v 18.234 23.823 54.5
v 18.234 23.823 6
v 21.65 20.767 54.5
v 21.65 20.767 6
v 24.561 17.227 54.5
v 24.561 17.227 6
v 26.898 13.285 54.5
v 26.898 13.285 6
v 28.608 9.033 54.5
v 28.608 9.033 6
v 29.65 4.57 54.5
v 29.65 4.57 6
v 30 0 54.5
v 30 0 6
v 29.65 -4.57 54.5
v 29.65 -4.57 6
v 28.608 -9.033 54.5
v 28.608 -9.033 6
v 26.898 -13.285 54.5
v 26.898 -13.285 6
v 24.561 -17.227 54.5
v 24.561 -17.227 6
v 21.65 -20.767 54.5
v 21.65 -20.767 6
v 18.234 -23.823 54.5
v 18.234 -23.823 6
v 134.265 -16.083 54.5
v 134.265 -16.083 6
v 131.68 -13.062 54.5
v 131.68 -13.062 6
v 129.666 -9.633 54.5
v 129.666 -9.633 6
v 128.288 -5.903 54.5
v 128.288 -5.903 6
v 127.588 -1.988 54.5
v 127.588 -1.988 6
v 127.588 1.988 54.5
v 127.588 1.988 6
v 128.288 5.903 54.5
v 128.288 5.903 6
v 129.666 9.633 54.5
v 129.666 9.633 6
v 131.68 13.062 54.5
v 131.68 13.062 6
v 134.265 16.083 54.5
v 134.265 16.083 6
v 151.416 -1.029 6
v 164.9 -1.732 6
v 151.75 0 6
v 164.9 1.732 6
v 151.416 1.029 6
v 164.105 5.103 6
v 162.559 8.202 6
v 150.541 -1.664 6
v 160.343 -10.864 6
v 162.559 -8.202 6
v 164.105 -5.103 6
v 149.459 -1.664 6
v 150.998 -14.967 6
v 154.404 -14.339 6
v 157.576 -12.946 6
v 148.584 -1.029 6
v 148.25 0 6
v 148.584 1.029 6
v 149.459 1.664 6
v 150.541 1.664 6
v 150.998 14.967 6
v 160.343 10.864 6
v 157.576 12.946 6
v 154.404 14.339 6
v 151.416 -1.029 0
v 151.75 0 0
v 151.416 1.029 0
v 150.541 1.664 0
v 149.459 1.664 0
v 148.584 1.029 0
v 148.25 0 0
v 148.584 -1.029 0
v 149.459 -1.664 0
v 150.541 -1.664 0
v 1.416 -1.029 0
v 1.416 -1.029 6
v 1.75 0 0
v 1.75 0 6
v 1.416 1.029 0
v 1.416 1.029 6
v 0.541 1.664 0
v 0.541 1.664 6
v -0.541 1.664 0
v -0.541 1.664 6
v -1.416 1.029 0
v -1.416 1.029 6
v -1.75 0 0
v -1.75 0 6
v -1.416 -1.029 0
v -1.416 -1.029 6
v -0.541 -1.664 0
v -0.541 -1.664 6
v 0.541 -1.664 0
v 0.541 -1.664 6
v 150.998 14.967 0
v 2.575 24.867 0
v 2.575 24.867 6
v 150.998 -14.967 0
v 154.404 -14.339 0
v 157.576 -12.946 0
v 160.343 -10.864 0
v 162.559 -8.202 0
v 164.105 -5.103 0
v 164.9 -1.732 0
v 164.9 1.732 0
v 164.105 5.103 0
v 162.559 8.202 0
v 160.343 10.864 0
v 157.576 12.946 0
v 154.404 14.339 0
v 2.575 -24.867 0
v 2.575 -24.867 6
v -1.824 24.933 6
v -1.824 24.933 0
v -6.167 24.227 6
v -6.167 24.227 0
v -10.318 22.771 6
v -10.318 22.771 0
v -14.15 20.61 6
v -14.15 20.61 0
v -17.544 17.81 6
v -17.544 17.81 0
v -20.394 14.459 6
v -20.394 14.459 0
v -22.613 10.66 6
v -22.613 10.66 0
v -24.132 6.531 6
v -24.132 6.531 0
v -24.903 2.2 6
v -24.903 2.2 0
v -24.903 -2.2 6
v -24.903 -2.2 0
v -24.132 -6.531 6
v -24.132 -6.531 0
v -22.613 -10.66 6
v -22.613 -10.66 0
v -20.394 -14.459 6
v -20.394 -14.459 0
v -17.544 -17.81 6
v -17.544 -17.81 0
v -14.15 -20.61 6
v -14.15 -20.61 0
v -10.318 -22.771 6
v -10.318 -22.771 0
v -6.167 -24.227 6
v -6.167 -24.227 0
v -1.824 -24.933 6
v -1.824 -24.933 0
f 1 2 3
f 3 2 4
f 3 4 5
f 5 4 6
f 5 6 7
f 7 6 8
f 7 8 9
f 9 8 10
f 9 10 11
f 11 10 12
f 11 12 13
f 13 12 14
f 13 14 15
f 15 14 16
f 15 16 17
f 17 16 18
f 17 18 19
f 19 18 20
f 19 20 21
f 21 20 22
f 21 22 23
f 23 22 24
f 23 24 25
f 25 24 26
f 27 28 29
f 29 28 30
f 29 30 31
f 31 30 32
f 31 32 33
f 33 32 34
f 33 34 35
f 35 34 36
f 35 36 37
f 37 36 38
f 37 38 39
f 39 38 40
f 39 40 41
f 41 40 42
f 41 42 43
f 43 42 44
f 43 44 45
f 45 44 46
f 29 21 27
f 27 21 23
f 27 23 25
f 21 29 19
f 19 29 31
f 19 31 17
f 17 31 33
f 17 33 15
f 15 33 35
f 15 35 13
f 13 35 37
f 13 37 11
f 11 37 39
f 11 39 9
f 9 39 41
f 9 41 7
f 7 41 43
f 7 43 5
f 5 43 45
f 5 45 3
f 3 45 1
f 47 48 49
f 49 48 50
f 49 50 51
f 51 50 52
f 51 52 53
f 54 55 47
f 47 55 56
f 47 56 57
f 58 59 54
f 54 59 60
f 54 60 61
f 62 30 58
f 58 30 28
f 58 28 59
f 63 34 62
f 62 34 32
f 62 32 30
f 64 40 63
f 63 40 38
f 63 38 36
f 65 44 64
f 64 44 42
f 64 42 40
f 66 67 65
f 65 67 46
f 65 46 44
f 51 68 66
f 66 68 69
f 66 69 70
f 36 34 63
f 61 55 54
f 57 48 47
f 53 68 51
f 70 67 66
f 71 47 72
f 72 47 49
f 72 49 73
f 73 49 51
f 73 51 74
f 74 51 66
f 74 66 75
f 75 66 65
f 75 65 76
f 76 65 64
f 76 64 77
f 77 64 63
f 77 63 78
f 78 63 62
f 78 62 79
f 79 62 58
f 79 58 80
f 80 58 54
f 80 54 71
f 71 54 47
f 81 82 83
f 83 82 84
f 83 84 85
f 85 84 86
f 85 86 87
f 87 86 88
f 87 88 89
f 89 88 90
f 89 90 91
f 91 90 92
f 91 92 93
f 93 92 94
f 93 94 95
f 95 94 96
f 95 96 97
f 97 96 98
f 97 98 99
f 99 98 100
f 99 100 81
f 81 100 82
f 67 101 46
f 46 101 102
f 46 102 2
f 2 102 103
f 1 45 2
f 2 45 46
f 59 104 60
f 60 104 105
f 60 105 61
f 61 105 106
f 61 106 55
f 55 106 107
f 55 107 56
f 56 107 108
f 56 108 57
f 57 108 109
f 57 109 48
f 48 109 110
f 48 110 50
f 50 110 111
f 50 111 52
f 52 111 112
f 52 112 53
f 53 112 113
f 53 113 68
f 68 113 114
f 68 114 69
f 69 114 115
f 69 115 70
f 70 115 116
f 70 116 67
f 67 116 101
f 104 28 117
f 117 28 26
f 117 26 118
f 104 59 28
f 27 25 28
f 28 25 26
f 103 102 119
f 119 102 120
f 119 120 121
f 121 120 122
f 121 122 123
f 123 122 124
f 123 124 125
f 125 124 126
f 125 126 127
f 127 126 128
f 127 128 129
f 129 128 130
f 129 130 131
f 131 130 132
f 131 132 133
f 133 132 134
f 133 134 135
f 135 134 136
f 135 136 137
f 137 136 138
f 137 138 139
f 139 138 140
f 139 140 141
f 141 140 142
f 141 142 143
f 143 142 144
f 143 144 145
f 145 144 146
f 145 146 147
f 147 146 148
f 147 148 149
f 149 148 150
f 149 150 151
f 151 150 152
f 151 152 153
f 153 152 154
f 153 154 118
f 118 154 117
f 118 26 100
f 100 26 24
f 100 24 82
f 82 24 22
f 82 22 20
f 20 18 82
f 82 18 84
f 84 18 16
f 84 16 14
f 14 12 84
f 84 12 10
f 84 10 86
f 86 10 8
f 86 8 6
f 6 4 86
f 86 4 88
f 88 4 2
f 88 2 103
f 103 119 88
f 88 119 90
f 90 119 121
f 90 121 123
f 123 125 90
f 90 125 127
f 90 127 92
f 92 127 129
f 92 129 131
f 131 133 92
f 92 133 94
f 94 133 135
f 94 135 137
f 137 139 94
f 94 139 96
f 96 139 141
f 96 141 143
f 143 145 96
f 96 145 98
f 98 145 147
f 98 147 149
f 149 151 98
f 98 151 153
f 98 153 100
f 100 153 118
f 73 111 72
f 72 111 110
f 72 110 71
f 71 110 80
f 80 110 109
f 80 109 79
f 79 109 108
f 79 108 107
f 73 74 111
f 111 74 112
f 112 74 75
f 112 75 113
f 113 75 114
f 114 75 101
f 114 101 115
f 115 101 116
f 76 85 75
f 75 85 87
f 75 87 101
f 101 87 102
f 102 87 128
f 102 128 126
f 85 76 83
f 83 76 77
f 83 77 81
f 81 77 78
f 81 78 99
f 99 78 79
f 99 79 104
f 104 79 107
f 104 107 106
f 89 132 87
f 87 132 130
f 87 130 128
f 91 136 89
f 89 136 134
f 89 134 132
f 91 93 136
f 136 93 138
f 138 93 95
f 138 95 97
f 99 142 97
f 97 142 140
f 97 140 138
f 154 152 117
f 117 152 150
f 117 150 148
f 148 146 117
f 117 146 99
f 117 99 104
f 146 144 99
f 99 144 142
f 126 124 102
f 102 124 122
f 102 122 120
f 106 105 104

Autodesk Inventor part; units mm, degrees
ref_plane "YZ Plane" through (0, 0, 0) normal (1, 0, 0) x (0, 1, 0)
ref_plane "XZ Plane" through (0, 0, 0) normal (0, 1, 0) x (-1, 0, 0)
ref_plane "XY Plane" through (0, 0, 0) normal (0, 0, 1) x (1, 0, 0)
sketch "Sketch1" plane through (0, 0, 0) normal (0, 0, 1) x (1, 0, 0)
  circle A0 centre (0, 0) radius 25
  circle A1 centre (150, 0) radius 15
  line L0 (0, 0) -> (150, 0)
  line L1 (0.7508, 24.9887) -> (150.9983, 14.9667)
  line L2 (0.7508, -24.9887) -> (150.9983, -14.9667)
  point P0 (0.7508, -24.9887)
  point P1 (150.9983, -14.9667)
  point P2 (2.5747, -24.8671)
  point P3 (2.5747, 24.8671)
  dimension "d10" = 15
  dimension "d11" = 25
  dimension "d9" = 150
extrude "Extrusion1" add sketch "Sketch1" along normal blind 6
sketch "Sketch2" plane through (0, 0, 6) normal (0, 0, 1) x (1, 0, 0)
  circle A0 centre (0, 0) radius 1.75
  arc A1 (150.9983, -14.9667) -> (150.9983, 14.9667) centre (150, 0) ccw projected
  circle A2 centre (150, 0) radius 1.75
  point P0 (293.3543, -13.4475)
  point P1 (293.3543, 13.4475)
  point P2 (250.3596, -14.9957)
  point P3 (250.3596, 14.9957)
  dimension "d5" = 3.5
  dimension "d6" = 3.5
extrude "Extrusion2" cut sketch "Sketch2" against normal blind 6
sketch "Sketch4" plane through (0, 0, 6) normal (0, 0, 1) x (1, 0, 0)
  circle A0 centre (0, 0) radius 12.5
  circle A1 centre (0, 0) radius 1.75 projected
  circle A2 centre (0, 0) radius 30
  circle A3 centre (150, 0) radius 1.75 projected
  circle A4 centre (150, 0) radius 9.913
  arc A5 (150.9983, -14.9667) -> (150.9983, 14.9667) centre (150, 0) ccw projected
  circle A6 centre (150, 0) radius 22.5
  line L0 (150.9983, 14.9667) -> (2.5747, 24.8671) projected
  line L1 (18.2342, 23.8225) -> (134.265, 16.0829)
  line L2 (18.2342, -23.8225) -> (134.265, -16.0829)
  line L3 (2.5747, -24.8671) -> (150.9983, -14.9667) projected
  dimension "d20" = 25
  dimension "d21" = 60
  dimension "d22" = 19.826
  dimension "d23" = 45
extrude "Extrusion4" add sketch "Sketch4" along normal blind 48.5 contours A2 L0 A6 L2
properties part number "Tibia"
